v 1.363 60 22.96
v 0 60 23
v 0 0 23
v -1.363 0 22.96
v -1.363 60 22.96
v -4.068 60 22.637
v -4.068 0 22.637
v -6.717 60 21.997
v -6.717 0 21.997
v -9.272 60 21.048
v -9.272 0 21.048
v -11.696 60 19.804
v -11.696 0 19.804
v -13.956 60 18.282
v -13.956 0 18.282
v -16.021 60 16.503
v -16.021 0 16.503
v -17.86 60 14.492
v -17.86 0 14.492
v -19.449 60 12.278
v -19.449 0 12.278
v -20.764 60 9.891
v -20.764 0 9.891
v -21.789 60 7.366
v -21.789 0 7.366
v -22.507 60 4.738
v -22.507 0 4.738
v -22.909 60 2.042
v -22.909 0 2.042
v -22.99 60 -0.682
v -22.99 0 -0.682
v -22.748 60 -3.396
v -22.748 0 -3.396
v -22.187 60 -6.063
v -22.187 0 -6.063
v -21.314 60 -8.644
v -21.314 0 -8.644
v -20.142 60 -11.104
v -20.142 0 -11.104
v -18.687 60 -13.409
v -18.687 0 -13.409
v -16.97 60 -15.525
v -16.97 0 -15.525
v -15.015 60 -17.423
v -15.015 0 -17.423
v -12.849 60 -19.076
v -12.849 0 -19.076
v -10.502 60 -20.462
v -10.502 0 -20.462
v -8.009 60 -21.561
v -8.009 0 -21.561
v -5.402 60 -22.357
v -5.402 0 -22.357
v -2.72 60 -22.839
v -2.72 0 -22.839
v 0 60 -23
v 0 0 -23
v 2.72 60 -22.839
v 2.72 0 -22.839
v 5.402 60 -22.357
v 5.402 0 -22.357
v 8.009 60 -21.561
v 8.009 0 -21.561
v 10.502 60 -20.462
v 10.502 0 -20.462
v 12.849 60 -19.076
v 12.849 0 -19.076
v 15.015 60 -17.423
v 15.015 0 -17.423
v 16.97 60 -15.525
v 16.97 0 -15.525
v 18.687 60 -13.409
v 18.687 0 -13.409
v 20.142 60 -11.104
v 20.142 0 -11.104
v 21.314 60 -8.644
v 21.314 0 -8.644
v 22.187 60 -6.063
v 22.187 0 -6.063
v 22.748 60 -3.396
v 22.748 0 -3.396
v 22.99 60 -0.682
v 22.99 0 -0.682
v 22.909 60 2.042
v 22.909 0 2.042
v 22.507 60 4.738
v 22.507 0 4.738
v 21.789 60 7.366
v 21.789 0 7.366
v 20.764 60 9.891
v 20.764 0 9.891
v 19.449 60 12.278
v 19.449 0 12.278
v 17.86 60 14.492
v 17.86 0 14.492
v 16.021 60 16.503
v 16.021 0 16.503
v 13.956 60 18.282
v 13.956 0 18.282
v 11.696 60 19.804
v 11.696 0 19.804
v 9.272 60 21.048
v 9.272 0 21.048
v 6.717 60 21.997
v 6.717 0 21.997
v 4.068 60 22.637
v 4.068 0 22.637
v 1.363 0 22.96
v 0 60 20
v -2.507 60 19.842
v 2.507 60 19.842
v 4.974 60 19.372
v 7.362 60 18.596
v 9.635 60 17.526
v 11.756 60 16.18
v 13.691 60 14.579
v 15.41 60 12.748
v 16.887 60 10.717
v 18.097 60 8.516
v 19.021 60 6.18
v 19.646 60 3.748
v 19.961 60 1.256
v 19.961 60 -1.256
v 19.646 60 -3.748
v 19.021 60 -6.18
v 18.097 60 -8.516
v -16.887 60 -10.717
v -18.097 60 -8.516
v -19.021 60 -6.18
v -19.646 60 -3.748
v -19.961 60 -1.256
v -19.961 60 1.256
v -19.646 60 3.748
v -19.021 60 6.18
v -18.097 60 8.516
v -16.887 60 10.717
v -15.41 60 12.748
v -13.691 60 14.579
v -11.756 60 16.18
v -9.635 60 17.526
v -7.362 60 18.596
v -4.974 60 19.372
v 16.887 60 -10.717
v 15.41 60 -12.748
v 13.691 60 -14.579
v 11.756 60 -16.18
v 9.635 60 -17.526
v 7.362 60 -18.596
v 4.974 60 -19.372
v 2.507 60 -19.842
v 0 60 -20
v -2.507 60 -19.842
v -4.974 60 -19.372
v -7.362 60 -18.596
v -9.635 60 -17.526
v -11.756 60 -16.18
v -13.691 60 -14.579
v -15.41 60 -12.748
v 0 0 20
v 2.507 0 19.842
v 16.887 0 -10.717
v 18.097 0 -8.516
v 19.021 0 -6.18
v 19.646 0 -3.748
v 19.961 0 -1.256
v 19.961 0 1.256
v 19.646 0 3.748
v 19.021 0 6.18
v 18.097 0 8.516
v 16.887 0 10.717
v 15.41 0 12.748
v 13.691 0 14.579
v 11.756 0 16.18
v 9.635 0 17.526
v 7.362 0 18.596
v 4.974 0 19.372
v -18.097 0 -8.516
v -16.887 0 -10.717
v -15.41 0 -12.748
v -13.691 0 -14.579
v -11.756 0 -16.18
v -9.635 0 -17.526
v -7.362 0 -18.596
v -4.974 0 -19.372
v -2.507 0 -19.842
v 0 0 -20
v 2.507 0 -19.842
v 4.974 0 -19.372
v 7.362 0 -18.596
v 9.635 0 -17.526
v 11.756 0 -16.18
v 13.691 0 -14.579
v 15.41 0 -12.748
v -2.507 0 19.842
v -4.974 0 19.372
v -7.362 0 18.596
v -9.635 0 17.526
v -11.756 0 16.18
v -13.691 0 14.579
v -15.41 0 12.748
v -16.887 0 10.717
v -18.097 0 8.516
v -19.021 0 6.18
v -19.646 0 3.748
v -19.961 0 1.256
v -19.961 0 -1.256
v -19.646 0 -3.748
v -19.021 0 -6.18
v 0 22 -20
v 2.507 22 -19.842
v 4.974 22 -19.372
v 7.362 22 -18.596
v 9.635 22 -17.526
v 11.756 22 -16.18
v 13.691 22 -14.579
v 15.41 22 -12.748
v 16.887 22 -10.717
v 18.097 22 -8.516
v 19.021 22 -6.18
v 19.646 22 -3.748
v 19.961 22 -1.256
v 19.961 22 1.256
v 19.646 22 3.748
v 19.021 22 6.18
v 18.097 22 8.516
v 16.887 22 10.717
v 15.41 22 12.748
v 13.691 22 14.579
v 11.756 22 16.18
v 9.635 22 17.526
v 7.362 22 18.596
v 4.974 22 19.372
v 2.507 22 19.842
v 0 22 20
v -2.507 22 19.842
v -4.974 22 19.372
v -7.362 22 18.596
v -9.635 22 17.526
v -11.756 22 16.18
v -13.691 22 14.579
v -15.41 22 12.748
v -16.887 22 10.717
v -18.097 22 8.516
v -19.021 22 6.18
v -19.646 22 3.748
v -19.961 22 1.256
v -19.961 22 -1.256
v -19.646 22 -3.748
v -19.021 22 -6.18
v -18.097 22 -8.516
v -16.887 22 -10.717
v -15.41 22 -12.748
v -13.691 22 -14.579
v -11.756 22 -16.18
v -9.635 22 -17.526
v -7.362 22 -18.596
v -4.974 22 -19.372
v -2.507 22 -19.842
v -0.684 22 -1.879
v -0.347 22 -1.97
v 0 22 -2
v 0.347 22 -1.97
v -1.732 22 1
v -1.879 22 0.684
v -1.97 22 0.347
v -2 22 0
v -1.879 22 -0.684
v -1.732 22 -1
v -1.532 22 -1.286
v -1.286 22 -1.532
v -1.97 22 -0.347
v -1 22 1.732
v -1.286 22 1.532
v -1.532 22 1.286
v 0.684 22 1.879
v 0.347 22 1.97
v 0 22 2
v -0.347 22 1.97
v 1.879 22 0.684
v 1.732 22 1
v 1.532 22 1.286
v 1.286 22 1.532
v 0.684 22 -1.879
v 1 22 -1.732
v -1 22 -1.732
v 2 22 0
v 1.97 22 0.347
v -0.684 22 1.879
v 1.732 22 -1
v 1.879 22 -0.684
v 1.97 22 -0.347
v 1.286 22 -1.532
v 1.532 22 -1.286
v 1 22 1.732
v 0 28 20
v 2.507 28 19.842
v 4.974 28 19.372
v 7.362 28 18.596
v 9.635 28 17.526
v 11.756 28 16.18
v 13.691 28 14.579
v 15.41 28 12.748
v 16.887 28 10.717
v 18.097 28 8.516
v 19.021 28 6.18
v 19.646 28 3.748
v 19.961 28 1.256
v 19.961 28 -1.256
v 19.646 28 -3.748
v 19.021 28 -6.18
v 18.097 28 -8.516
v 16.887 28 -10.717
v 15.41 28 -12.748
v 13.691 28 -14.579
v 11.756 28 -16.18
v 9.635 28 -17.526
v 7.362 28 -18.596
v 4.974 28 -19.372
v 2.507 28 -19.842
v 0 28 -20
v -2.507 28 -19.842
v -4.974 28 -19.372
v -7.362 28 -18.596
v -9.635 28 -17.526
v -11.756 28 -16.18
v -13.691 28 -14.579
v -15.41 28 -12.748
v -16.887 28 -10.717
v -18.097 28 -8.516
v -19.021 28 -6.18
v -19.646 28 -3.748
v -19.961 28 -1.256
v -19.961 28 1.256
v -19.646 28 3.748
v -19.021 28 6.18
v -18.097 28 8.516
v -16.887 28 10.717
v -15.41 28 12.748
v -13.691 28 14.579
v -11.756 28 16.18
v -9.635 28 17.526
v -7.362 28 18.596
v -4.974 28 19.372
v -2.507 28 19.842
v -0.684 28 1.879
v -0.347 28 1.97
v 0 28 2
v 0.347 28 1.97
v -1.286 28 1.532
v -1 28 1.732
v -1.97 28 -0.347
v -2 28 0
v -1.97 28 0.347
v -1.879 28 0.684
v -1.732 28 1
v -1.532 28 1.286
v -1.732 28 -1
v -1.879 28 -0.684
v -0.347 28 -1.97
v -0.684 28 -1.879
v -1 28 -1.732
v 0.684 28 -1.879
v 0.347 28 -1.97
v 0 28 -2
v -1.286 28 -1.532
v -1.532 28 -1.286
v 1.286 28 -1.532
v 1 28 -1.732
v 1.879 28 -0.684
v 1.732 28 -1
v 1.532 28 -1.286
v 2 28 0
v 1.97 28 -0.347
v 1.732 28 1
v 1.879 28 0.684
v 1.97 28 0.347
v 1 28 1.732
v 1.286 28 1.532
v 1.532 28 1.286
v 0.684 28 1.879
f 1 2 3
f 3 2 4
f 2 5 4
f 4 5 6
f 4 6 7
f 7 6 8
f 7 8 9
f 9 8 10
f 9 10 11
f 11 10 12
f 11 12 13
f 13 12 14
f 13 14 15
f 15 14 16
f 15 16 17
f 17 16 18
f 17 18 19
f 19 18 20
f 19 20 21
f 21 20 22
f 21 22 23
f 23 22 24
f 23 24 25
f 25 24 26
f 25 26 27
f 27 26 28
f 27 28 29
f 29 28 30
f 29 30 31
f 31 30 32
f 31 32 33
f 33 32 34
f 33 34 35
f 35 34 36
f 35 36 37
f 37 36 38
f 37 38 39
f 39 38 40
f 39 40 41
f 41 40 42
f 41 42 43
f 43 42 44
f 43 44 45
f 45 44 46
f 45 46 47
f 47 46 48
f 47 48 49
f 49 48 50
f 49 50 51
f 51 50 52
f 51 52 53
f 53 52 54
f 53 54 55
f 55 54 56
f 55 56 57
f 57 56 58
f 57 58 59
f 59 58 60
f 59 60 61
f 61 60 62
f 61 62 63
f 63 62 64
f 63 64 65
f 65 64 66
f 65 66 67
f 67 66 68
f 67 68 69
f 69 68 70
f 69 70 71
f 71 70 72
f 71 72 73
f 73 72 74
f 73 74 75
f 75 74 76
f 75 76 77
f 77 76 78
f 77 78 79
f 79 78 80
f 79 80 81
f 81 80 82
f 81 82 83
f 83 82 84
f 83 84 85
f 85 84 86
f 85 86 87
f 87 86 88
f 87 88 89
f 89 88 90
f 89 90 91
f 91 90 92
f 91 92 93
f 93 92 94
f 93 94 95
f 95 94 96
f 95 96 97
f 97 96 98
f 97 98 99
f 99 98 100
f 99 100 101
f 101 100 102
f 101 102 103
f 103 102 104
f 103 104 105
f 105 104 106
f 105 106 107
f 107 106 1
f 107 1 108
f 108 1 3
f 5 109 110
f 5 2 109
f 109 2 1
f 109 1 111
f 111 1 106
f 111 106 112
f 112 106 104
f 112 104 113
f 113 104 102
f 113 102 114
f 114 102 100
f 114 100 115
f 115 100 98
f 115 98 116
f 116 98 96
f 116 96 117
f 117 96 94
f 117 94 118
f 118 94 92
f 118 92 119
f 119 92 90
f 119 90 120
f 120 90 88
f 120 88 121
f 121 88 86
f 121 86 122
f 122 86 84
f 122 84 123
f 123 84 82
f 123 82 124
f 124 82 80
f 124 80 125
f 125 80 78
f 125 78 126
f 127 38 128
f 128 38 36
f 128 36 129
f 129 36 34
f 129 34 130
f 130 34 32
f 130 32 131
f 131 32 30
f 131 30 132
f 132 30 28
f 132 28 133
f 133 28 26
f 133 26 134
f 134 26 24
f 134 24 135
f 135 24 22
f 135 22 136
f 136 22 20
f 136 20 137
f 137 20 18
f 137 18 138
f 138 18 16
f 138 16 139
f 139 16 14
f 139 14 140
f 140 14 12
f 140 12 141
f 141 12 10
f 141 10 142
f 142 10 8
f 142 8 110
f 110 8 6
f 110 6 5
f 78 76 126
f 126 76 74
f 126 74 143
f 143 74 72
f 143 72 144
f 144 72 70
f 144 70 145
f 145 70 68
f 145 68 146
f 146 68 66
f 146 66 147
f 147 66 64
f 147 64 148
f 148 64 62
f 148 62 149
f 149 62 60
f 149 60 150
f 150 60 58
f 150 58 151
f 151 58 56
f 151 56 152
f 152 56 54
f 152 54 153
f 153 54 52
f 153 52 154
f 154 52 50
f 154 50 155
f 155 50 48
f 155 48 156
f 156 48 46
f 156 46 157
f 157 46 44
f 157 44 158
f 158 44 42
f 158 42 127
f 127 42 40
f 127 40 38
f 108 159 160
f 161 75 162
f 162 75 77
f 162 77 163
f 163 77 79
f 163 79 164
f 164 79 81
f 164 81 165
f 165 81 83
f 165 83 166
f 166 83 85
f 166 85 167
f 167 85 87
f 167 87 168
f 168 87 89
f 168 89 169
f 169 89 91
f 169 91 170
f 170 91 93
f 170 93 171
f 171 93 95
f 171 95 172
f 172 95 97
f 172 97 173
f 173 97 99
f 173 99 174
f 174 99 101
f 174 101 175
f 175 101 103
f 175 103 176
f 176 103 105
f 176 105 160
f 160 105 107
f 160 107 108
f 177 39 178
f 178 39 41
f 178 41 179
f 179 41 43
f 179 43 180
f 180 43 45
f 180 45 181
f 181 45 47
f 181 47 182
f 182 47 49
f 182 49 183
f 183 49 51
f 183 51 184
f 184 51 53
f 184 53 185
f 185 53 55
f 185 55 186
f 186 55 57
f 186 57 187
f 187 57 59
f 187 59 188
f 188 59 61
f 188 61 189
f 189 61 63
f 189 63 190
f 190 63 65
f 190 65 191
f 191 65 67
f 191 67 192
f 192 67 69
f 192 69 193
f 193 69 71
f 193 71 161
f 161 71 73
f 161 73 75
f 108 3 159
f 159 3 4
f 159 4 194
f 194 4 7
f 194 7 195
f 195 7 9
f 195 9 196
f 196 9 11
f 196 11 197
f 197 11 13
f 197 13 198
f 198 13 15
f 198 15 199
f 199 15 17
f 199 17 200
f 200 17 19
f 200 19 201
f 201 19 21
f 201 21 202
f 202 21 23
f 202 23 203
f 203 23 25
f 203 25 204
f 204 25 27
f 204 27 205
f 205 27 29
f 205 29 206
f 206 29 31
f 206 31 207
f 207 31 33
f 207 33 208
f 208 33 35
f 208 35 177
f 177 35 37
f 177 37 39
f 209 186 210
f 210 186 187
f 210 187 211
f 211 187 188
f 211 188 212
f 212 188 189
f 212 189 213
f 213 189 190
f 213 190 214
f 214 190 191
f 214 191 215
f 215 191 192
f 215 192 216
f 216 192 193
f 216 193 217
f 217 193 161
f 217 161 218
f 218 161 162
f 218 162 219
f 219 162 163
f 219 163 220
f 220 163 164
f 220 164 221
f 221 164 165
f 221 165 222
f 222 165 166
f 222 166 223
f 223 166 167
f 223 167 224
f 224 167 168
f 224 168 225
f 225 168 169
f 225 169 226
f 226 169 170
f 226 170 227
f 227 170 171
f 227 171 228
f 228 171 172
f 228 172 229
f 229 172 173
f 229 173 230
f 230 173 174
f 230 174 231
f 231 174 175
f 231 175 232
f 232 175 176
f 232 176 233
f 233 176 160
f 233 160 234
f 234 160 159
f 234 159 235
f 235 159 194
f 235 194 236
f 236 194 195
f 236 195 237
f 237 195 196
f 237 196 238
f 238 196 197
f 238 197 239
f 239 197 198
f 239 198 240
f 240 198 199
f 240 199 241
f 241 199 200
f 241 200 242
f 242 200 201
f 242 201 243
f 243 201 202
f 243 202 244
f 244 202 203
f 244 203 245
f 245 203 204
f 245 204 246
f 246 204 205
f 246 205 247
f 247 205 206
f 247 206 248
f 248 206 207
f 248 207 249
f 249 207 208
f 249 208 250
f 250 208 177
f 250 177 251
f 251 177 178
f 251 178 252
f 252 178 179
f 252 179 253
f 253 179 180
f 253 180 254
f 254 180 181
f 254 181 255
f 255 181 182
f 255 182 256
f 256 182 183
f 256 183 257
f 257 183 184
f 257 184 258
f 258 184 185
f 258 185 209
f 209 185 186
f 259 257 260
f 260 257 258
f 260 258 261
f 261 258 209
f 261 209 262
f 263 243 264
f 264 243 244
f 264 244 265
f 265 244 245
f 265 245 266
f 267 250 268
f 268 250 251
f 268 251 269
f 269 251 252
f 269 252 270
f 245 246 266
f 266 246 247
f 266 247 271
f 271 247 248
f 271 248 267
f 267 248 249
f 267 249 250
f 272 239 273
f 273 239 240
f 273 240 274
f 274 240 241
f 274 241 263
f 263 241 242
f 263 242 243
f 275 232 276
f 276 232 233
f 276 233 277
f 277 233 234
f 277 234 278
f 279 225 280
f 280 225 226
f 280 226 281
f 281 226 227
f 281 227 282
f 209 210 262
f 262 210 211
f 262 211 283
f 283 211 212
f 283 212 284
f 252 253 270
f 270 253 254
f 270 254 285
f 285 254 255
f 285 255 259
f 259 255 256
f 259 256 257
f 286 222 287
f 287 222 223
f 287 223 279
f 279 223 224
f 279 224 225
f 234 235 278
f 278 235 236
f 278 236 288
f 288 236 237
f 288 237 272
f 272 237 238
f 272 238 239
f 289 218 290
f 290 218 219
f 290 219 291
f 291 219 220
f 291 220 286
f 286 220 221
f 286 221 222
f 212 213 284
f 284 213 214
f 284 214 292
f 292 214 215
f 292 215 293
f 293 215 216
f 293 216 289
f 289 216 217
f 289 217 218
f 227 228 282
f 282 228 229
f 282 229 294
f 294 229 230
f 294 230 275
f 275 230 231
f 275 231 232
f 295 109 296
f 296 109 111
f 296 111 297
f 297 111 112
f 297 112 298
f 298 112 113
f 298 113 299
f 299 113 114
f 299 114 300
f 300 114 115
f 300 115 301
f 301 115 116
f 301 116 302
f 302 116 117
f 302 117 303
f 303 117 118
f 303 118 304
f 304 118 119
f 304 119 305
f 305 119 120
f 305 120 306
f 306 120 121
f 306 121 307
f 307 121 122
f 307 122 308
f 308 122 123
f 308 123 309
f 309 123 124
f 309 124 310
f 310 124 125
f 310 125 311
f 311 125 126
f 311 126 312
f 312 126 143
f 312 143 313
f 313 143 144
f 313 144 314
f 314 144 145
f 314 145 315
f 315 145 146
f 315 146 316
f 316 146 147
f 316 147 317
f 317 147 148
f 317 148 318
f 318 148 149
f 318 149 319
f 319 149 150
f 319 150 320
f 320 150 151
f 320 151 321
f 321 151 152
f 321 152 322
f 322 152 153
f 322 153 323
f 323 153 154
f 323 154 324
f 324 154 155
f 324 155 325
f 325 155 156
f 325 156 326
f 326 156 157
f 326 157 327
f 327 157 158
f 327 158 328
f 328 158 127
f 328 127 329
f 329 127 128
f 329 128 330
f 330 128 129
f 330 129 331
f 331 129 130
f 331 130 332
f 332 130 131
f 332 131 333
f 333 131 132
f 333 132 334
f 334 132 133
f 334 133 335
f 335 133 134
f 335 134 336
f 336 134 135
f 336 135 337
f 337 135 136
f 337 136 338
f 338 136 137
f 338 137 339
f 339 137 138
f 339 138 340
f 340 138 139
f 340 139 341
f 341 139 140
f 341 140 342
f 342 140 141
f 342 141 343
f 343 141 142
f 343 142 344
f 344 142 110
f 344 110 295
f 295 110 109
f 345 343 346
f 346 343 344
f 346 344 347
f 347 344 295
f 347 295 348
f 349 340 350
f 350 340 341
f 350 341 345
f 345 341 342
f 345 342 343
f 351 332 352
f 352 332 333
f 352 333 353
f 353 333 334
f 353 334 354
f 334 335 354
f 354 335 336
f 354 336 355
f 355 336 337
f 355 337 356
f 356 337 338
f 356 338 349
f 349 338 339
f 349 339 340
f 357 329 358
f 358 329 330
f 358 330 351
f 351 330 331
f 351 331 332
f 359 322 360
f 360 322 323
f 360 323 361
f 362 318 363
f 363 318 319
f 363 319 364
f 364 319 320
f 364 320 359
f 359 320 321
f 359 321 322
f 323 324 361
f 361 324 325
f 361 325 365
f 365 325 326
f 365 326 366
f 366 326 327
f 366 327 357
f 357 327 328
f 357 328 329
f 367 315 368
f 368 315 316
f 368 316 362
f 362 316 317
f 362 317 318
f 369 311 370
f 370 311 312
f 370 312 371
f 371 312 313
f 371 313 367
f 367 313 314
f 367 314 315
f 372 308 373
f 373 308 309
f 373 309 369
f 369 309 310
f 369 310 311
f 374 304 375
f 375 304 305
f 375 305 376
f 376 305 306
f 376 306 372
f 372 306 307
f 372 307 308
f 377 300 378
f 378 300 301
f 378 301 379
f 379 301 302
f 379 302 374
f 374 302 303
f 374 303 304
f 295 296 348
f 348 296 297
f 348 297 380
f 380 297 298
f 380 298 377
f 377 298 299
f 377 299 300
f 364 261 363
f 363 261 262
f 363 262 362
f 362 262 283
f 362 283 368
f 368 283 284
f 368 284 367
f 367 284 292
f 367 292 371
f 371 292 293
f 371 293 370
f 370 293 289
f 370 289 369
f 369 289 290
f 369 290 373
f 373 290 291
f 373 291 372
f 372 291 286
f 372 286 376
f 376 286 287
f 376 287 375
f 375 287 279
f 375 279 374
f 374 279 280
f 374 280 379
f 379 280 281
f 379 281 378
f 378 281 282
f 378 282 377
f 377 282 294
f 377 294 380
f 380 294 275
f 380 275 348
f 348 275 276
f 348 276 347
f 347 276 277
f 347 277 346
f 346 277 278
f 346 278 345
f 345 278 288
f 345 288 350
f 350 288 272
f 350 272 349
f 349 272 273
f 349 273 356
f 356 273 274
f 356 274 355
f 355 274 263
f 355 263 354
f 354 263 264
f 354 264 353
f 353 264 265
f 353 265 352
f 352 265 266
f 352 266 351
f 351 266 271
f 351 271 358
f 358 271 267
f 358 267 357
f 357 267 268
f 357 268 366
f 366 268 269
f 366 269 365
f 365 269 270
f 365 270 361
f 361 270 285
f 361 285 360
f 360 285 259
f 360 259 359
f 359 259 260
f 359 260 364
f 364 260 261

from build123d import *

# Parameters (mm, degrees)
SKETCH1_R           = 23
BOSS_EXTRUDE1_DEPTH = 60
SKETCH2_R           = 20
CUT_EXTRUDE1_DEPTH  = 22
CUT_EXTRUDE2_START  = -32
SKETCH5_R           = 20
CUT_EXTRUDE2_DEPTH  = 32
SKETCH4_R           = 2
CUT_EXTRUDE3_DEPTH  = 40


with BuildPart() as part:
    # Sketch1 → Boss-Extrude1 (new body)
    with BuildSketch(Plane(origin=(0, 0, 0), x_dir=(1, 0, 0), z_dir=(0, 1, 0))):
        with Locations(Location((0, 0, 0), (0, 0, 270))):
            Circle(SKETCH1_R)
    extrude(amount=BOSS_EXTRUDE1_DEPTH)

    # Sketch2 → Cut-Extrude1 (cut)
    with BuildSketch(Plane.XZ):
        with Locations(Location((0, 0, 0), (0, 0, 270))):
            Circle(SKETCH2_R)
    extrude(amount=-CUT_EXTRUDE1_DEPTH, mode=Mode.SUBTRACT)

    # Sketch5 → Cut-Extrude2 (cut)
    with BuildSketch(Plane(origin=(0, 60, 0), x_dir=(1, 0, 0), z_dir=(0, 1, 0)).offset(CUT_EXTRUDE2_START)):
        with Locations(Location((0, 0, 0), (0, 0, 90))):
            Circle(SKETCH5_R)
    extrude(amount=CUT_EXTRUDE2_DEPTH, mode=Mode.SUBTRACT)

    # Sketch4 → Cut-Extrude3 (cut)
    with BuildSketch(Plane.XZ.offset(-22)):
        with Locations(Location((0, 0, 0), (0, 0, 270))):
            Circle(SKETCH4_R)
    extrude(amount=-CUT_EXTRUDE3_DEPTH, mode=Mode.SUBTRACT)


solid = part.part
